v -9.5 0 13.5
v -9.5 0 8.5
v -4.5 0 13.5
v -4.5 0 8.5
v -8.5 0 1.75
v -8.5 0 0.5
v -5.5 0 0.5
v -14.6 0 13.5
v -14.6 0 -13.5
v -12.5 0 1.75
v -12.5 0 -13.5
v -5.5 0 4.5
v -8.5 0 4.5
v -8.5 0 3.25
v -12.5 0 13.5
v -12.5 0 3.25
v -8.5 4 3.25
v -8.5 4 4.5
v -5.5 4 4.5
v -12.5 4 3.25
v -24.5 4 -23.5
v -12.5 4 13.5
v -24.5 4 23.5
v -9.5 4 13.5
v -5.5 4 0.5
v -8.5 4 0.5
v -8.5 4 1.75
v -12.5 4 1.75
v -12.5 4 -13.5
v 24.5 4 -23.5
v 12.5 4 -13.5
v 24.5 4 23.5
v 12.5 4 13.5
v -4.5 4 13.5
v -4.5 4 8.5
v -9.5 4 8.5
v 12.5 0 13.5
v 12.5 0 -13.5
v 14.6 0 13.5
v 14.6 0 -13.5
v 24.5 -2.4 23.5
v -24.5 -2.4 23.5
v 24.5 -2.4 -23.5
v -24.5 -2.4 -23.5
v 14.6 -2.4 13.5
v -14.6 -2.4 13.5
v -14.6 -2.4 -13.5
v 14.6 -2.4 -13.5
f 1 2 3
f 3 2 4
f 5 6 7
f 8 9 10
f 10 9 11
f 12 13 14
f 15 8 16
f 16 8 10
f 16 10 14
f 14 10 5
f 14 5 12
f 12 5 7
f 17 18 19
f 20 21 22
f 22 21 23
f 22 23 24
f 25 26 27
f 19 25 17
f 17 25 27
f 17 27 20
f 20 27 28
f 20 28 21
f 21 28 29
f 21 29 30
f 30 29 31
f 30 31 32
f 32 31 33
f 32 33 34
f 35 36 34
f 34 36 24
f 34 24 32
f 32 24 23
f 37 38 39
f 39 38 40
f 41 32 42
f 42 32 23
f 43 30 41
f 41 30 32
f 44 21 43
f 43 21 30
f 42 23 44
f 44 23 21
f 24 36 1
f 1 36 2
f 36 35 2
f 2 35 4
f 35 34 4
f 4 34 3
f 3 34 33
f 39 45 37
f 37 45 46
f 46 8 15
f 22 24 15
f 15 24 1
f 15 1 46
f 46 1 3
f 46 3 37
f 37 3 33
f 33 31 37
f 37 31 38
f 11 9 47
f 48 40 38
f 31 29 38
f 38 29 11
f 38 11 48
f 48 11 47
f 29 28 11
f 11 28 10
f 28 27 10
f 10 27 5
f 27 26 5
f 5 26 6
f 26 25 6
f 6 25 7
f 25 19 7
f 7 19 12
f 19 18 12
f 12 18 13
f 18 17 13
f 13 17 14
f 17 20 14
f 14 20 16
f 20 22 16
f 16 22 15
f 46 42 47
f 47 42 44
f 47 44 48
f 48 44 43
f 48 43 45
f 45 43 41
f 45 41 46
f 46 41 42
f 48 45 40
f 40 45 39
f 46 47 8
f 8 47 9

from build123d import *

# Parameters (mm, degrees)
SKETCH1_W           = 49
SKETCH1_H           = 47
BOSS_EXTRUDE1_DEPTH = 4
SKETCH2_W           = 49
SKETCH2_H           = 47
SKETCH2_W_2         = 29.2
SKETCH2_H_2         = 27
BOSS_EXTRUDE2_DEPTH = 2.4


with BuildPart() as part:
    # Sketch1 → Boss-Extrude1 (new body)
    with BuildSketch(Plane(origin=(0, 0, 0), x_dir=(1, 0, 0), z_dir=(0, 1, 0))):
        Rectangle(SKETCH1_W, SKETCH1_H)
        Polygon((-12.5, -13.5), (-9.5, -13.5), (-9.5, -8.5), (-4.5, -8.5), (-4.5, -13.5), (12.5, -13.5), (12.5, 13.5), (-12.5, 13.5), (-12.5, -1.75), (-8.5, -1.75), (-8.5, -0.5), (-5.5, -0.5), (-5.5, -4.5), (-8.5, -4.5), (-8.5, -3.25), (-12.5, -3.25), align=None, mode=Mode.SUBTRACT)
    extrude(amount=BOSS_EXTRUDE1_DEPTH)

    # Sketch2 → Boss-Extrude2 (add)
    with BuildSketch(Plane.XZ):
        Rectangle(SKETCH2_W, SKETCH2_H)
        Rectangle(SKETCH2_W_2, SKETCH2_H_2, mode=Mode.SUBTRACT)
    extrude(amount=BOSS_EXTRUDE2_DEPTH)


solid = part.part
